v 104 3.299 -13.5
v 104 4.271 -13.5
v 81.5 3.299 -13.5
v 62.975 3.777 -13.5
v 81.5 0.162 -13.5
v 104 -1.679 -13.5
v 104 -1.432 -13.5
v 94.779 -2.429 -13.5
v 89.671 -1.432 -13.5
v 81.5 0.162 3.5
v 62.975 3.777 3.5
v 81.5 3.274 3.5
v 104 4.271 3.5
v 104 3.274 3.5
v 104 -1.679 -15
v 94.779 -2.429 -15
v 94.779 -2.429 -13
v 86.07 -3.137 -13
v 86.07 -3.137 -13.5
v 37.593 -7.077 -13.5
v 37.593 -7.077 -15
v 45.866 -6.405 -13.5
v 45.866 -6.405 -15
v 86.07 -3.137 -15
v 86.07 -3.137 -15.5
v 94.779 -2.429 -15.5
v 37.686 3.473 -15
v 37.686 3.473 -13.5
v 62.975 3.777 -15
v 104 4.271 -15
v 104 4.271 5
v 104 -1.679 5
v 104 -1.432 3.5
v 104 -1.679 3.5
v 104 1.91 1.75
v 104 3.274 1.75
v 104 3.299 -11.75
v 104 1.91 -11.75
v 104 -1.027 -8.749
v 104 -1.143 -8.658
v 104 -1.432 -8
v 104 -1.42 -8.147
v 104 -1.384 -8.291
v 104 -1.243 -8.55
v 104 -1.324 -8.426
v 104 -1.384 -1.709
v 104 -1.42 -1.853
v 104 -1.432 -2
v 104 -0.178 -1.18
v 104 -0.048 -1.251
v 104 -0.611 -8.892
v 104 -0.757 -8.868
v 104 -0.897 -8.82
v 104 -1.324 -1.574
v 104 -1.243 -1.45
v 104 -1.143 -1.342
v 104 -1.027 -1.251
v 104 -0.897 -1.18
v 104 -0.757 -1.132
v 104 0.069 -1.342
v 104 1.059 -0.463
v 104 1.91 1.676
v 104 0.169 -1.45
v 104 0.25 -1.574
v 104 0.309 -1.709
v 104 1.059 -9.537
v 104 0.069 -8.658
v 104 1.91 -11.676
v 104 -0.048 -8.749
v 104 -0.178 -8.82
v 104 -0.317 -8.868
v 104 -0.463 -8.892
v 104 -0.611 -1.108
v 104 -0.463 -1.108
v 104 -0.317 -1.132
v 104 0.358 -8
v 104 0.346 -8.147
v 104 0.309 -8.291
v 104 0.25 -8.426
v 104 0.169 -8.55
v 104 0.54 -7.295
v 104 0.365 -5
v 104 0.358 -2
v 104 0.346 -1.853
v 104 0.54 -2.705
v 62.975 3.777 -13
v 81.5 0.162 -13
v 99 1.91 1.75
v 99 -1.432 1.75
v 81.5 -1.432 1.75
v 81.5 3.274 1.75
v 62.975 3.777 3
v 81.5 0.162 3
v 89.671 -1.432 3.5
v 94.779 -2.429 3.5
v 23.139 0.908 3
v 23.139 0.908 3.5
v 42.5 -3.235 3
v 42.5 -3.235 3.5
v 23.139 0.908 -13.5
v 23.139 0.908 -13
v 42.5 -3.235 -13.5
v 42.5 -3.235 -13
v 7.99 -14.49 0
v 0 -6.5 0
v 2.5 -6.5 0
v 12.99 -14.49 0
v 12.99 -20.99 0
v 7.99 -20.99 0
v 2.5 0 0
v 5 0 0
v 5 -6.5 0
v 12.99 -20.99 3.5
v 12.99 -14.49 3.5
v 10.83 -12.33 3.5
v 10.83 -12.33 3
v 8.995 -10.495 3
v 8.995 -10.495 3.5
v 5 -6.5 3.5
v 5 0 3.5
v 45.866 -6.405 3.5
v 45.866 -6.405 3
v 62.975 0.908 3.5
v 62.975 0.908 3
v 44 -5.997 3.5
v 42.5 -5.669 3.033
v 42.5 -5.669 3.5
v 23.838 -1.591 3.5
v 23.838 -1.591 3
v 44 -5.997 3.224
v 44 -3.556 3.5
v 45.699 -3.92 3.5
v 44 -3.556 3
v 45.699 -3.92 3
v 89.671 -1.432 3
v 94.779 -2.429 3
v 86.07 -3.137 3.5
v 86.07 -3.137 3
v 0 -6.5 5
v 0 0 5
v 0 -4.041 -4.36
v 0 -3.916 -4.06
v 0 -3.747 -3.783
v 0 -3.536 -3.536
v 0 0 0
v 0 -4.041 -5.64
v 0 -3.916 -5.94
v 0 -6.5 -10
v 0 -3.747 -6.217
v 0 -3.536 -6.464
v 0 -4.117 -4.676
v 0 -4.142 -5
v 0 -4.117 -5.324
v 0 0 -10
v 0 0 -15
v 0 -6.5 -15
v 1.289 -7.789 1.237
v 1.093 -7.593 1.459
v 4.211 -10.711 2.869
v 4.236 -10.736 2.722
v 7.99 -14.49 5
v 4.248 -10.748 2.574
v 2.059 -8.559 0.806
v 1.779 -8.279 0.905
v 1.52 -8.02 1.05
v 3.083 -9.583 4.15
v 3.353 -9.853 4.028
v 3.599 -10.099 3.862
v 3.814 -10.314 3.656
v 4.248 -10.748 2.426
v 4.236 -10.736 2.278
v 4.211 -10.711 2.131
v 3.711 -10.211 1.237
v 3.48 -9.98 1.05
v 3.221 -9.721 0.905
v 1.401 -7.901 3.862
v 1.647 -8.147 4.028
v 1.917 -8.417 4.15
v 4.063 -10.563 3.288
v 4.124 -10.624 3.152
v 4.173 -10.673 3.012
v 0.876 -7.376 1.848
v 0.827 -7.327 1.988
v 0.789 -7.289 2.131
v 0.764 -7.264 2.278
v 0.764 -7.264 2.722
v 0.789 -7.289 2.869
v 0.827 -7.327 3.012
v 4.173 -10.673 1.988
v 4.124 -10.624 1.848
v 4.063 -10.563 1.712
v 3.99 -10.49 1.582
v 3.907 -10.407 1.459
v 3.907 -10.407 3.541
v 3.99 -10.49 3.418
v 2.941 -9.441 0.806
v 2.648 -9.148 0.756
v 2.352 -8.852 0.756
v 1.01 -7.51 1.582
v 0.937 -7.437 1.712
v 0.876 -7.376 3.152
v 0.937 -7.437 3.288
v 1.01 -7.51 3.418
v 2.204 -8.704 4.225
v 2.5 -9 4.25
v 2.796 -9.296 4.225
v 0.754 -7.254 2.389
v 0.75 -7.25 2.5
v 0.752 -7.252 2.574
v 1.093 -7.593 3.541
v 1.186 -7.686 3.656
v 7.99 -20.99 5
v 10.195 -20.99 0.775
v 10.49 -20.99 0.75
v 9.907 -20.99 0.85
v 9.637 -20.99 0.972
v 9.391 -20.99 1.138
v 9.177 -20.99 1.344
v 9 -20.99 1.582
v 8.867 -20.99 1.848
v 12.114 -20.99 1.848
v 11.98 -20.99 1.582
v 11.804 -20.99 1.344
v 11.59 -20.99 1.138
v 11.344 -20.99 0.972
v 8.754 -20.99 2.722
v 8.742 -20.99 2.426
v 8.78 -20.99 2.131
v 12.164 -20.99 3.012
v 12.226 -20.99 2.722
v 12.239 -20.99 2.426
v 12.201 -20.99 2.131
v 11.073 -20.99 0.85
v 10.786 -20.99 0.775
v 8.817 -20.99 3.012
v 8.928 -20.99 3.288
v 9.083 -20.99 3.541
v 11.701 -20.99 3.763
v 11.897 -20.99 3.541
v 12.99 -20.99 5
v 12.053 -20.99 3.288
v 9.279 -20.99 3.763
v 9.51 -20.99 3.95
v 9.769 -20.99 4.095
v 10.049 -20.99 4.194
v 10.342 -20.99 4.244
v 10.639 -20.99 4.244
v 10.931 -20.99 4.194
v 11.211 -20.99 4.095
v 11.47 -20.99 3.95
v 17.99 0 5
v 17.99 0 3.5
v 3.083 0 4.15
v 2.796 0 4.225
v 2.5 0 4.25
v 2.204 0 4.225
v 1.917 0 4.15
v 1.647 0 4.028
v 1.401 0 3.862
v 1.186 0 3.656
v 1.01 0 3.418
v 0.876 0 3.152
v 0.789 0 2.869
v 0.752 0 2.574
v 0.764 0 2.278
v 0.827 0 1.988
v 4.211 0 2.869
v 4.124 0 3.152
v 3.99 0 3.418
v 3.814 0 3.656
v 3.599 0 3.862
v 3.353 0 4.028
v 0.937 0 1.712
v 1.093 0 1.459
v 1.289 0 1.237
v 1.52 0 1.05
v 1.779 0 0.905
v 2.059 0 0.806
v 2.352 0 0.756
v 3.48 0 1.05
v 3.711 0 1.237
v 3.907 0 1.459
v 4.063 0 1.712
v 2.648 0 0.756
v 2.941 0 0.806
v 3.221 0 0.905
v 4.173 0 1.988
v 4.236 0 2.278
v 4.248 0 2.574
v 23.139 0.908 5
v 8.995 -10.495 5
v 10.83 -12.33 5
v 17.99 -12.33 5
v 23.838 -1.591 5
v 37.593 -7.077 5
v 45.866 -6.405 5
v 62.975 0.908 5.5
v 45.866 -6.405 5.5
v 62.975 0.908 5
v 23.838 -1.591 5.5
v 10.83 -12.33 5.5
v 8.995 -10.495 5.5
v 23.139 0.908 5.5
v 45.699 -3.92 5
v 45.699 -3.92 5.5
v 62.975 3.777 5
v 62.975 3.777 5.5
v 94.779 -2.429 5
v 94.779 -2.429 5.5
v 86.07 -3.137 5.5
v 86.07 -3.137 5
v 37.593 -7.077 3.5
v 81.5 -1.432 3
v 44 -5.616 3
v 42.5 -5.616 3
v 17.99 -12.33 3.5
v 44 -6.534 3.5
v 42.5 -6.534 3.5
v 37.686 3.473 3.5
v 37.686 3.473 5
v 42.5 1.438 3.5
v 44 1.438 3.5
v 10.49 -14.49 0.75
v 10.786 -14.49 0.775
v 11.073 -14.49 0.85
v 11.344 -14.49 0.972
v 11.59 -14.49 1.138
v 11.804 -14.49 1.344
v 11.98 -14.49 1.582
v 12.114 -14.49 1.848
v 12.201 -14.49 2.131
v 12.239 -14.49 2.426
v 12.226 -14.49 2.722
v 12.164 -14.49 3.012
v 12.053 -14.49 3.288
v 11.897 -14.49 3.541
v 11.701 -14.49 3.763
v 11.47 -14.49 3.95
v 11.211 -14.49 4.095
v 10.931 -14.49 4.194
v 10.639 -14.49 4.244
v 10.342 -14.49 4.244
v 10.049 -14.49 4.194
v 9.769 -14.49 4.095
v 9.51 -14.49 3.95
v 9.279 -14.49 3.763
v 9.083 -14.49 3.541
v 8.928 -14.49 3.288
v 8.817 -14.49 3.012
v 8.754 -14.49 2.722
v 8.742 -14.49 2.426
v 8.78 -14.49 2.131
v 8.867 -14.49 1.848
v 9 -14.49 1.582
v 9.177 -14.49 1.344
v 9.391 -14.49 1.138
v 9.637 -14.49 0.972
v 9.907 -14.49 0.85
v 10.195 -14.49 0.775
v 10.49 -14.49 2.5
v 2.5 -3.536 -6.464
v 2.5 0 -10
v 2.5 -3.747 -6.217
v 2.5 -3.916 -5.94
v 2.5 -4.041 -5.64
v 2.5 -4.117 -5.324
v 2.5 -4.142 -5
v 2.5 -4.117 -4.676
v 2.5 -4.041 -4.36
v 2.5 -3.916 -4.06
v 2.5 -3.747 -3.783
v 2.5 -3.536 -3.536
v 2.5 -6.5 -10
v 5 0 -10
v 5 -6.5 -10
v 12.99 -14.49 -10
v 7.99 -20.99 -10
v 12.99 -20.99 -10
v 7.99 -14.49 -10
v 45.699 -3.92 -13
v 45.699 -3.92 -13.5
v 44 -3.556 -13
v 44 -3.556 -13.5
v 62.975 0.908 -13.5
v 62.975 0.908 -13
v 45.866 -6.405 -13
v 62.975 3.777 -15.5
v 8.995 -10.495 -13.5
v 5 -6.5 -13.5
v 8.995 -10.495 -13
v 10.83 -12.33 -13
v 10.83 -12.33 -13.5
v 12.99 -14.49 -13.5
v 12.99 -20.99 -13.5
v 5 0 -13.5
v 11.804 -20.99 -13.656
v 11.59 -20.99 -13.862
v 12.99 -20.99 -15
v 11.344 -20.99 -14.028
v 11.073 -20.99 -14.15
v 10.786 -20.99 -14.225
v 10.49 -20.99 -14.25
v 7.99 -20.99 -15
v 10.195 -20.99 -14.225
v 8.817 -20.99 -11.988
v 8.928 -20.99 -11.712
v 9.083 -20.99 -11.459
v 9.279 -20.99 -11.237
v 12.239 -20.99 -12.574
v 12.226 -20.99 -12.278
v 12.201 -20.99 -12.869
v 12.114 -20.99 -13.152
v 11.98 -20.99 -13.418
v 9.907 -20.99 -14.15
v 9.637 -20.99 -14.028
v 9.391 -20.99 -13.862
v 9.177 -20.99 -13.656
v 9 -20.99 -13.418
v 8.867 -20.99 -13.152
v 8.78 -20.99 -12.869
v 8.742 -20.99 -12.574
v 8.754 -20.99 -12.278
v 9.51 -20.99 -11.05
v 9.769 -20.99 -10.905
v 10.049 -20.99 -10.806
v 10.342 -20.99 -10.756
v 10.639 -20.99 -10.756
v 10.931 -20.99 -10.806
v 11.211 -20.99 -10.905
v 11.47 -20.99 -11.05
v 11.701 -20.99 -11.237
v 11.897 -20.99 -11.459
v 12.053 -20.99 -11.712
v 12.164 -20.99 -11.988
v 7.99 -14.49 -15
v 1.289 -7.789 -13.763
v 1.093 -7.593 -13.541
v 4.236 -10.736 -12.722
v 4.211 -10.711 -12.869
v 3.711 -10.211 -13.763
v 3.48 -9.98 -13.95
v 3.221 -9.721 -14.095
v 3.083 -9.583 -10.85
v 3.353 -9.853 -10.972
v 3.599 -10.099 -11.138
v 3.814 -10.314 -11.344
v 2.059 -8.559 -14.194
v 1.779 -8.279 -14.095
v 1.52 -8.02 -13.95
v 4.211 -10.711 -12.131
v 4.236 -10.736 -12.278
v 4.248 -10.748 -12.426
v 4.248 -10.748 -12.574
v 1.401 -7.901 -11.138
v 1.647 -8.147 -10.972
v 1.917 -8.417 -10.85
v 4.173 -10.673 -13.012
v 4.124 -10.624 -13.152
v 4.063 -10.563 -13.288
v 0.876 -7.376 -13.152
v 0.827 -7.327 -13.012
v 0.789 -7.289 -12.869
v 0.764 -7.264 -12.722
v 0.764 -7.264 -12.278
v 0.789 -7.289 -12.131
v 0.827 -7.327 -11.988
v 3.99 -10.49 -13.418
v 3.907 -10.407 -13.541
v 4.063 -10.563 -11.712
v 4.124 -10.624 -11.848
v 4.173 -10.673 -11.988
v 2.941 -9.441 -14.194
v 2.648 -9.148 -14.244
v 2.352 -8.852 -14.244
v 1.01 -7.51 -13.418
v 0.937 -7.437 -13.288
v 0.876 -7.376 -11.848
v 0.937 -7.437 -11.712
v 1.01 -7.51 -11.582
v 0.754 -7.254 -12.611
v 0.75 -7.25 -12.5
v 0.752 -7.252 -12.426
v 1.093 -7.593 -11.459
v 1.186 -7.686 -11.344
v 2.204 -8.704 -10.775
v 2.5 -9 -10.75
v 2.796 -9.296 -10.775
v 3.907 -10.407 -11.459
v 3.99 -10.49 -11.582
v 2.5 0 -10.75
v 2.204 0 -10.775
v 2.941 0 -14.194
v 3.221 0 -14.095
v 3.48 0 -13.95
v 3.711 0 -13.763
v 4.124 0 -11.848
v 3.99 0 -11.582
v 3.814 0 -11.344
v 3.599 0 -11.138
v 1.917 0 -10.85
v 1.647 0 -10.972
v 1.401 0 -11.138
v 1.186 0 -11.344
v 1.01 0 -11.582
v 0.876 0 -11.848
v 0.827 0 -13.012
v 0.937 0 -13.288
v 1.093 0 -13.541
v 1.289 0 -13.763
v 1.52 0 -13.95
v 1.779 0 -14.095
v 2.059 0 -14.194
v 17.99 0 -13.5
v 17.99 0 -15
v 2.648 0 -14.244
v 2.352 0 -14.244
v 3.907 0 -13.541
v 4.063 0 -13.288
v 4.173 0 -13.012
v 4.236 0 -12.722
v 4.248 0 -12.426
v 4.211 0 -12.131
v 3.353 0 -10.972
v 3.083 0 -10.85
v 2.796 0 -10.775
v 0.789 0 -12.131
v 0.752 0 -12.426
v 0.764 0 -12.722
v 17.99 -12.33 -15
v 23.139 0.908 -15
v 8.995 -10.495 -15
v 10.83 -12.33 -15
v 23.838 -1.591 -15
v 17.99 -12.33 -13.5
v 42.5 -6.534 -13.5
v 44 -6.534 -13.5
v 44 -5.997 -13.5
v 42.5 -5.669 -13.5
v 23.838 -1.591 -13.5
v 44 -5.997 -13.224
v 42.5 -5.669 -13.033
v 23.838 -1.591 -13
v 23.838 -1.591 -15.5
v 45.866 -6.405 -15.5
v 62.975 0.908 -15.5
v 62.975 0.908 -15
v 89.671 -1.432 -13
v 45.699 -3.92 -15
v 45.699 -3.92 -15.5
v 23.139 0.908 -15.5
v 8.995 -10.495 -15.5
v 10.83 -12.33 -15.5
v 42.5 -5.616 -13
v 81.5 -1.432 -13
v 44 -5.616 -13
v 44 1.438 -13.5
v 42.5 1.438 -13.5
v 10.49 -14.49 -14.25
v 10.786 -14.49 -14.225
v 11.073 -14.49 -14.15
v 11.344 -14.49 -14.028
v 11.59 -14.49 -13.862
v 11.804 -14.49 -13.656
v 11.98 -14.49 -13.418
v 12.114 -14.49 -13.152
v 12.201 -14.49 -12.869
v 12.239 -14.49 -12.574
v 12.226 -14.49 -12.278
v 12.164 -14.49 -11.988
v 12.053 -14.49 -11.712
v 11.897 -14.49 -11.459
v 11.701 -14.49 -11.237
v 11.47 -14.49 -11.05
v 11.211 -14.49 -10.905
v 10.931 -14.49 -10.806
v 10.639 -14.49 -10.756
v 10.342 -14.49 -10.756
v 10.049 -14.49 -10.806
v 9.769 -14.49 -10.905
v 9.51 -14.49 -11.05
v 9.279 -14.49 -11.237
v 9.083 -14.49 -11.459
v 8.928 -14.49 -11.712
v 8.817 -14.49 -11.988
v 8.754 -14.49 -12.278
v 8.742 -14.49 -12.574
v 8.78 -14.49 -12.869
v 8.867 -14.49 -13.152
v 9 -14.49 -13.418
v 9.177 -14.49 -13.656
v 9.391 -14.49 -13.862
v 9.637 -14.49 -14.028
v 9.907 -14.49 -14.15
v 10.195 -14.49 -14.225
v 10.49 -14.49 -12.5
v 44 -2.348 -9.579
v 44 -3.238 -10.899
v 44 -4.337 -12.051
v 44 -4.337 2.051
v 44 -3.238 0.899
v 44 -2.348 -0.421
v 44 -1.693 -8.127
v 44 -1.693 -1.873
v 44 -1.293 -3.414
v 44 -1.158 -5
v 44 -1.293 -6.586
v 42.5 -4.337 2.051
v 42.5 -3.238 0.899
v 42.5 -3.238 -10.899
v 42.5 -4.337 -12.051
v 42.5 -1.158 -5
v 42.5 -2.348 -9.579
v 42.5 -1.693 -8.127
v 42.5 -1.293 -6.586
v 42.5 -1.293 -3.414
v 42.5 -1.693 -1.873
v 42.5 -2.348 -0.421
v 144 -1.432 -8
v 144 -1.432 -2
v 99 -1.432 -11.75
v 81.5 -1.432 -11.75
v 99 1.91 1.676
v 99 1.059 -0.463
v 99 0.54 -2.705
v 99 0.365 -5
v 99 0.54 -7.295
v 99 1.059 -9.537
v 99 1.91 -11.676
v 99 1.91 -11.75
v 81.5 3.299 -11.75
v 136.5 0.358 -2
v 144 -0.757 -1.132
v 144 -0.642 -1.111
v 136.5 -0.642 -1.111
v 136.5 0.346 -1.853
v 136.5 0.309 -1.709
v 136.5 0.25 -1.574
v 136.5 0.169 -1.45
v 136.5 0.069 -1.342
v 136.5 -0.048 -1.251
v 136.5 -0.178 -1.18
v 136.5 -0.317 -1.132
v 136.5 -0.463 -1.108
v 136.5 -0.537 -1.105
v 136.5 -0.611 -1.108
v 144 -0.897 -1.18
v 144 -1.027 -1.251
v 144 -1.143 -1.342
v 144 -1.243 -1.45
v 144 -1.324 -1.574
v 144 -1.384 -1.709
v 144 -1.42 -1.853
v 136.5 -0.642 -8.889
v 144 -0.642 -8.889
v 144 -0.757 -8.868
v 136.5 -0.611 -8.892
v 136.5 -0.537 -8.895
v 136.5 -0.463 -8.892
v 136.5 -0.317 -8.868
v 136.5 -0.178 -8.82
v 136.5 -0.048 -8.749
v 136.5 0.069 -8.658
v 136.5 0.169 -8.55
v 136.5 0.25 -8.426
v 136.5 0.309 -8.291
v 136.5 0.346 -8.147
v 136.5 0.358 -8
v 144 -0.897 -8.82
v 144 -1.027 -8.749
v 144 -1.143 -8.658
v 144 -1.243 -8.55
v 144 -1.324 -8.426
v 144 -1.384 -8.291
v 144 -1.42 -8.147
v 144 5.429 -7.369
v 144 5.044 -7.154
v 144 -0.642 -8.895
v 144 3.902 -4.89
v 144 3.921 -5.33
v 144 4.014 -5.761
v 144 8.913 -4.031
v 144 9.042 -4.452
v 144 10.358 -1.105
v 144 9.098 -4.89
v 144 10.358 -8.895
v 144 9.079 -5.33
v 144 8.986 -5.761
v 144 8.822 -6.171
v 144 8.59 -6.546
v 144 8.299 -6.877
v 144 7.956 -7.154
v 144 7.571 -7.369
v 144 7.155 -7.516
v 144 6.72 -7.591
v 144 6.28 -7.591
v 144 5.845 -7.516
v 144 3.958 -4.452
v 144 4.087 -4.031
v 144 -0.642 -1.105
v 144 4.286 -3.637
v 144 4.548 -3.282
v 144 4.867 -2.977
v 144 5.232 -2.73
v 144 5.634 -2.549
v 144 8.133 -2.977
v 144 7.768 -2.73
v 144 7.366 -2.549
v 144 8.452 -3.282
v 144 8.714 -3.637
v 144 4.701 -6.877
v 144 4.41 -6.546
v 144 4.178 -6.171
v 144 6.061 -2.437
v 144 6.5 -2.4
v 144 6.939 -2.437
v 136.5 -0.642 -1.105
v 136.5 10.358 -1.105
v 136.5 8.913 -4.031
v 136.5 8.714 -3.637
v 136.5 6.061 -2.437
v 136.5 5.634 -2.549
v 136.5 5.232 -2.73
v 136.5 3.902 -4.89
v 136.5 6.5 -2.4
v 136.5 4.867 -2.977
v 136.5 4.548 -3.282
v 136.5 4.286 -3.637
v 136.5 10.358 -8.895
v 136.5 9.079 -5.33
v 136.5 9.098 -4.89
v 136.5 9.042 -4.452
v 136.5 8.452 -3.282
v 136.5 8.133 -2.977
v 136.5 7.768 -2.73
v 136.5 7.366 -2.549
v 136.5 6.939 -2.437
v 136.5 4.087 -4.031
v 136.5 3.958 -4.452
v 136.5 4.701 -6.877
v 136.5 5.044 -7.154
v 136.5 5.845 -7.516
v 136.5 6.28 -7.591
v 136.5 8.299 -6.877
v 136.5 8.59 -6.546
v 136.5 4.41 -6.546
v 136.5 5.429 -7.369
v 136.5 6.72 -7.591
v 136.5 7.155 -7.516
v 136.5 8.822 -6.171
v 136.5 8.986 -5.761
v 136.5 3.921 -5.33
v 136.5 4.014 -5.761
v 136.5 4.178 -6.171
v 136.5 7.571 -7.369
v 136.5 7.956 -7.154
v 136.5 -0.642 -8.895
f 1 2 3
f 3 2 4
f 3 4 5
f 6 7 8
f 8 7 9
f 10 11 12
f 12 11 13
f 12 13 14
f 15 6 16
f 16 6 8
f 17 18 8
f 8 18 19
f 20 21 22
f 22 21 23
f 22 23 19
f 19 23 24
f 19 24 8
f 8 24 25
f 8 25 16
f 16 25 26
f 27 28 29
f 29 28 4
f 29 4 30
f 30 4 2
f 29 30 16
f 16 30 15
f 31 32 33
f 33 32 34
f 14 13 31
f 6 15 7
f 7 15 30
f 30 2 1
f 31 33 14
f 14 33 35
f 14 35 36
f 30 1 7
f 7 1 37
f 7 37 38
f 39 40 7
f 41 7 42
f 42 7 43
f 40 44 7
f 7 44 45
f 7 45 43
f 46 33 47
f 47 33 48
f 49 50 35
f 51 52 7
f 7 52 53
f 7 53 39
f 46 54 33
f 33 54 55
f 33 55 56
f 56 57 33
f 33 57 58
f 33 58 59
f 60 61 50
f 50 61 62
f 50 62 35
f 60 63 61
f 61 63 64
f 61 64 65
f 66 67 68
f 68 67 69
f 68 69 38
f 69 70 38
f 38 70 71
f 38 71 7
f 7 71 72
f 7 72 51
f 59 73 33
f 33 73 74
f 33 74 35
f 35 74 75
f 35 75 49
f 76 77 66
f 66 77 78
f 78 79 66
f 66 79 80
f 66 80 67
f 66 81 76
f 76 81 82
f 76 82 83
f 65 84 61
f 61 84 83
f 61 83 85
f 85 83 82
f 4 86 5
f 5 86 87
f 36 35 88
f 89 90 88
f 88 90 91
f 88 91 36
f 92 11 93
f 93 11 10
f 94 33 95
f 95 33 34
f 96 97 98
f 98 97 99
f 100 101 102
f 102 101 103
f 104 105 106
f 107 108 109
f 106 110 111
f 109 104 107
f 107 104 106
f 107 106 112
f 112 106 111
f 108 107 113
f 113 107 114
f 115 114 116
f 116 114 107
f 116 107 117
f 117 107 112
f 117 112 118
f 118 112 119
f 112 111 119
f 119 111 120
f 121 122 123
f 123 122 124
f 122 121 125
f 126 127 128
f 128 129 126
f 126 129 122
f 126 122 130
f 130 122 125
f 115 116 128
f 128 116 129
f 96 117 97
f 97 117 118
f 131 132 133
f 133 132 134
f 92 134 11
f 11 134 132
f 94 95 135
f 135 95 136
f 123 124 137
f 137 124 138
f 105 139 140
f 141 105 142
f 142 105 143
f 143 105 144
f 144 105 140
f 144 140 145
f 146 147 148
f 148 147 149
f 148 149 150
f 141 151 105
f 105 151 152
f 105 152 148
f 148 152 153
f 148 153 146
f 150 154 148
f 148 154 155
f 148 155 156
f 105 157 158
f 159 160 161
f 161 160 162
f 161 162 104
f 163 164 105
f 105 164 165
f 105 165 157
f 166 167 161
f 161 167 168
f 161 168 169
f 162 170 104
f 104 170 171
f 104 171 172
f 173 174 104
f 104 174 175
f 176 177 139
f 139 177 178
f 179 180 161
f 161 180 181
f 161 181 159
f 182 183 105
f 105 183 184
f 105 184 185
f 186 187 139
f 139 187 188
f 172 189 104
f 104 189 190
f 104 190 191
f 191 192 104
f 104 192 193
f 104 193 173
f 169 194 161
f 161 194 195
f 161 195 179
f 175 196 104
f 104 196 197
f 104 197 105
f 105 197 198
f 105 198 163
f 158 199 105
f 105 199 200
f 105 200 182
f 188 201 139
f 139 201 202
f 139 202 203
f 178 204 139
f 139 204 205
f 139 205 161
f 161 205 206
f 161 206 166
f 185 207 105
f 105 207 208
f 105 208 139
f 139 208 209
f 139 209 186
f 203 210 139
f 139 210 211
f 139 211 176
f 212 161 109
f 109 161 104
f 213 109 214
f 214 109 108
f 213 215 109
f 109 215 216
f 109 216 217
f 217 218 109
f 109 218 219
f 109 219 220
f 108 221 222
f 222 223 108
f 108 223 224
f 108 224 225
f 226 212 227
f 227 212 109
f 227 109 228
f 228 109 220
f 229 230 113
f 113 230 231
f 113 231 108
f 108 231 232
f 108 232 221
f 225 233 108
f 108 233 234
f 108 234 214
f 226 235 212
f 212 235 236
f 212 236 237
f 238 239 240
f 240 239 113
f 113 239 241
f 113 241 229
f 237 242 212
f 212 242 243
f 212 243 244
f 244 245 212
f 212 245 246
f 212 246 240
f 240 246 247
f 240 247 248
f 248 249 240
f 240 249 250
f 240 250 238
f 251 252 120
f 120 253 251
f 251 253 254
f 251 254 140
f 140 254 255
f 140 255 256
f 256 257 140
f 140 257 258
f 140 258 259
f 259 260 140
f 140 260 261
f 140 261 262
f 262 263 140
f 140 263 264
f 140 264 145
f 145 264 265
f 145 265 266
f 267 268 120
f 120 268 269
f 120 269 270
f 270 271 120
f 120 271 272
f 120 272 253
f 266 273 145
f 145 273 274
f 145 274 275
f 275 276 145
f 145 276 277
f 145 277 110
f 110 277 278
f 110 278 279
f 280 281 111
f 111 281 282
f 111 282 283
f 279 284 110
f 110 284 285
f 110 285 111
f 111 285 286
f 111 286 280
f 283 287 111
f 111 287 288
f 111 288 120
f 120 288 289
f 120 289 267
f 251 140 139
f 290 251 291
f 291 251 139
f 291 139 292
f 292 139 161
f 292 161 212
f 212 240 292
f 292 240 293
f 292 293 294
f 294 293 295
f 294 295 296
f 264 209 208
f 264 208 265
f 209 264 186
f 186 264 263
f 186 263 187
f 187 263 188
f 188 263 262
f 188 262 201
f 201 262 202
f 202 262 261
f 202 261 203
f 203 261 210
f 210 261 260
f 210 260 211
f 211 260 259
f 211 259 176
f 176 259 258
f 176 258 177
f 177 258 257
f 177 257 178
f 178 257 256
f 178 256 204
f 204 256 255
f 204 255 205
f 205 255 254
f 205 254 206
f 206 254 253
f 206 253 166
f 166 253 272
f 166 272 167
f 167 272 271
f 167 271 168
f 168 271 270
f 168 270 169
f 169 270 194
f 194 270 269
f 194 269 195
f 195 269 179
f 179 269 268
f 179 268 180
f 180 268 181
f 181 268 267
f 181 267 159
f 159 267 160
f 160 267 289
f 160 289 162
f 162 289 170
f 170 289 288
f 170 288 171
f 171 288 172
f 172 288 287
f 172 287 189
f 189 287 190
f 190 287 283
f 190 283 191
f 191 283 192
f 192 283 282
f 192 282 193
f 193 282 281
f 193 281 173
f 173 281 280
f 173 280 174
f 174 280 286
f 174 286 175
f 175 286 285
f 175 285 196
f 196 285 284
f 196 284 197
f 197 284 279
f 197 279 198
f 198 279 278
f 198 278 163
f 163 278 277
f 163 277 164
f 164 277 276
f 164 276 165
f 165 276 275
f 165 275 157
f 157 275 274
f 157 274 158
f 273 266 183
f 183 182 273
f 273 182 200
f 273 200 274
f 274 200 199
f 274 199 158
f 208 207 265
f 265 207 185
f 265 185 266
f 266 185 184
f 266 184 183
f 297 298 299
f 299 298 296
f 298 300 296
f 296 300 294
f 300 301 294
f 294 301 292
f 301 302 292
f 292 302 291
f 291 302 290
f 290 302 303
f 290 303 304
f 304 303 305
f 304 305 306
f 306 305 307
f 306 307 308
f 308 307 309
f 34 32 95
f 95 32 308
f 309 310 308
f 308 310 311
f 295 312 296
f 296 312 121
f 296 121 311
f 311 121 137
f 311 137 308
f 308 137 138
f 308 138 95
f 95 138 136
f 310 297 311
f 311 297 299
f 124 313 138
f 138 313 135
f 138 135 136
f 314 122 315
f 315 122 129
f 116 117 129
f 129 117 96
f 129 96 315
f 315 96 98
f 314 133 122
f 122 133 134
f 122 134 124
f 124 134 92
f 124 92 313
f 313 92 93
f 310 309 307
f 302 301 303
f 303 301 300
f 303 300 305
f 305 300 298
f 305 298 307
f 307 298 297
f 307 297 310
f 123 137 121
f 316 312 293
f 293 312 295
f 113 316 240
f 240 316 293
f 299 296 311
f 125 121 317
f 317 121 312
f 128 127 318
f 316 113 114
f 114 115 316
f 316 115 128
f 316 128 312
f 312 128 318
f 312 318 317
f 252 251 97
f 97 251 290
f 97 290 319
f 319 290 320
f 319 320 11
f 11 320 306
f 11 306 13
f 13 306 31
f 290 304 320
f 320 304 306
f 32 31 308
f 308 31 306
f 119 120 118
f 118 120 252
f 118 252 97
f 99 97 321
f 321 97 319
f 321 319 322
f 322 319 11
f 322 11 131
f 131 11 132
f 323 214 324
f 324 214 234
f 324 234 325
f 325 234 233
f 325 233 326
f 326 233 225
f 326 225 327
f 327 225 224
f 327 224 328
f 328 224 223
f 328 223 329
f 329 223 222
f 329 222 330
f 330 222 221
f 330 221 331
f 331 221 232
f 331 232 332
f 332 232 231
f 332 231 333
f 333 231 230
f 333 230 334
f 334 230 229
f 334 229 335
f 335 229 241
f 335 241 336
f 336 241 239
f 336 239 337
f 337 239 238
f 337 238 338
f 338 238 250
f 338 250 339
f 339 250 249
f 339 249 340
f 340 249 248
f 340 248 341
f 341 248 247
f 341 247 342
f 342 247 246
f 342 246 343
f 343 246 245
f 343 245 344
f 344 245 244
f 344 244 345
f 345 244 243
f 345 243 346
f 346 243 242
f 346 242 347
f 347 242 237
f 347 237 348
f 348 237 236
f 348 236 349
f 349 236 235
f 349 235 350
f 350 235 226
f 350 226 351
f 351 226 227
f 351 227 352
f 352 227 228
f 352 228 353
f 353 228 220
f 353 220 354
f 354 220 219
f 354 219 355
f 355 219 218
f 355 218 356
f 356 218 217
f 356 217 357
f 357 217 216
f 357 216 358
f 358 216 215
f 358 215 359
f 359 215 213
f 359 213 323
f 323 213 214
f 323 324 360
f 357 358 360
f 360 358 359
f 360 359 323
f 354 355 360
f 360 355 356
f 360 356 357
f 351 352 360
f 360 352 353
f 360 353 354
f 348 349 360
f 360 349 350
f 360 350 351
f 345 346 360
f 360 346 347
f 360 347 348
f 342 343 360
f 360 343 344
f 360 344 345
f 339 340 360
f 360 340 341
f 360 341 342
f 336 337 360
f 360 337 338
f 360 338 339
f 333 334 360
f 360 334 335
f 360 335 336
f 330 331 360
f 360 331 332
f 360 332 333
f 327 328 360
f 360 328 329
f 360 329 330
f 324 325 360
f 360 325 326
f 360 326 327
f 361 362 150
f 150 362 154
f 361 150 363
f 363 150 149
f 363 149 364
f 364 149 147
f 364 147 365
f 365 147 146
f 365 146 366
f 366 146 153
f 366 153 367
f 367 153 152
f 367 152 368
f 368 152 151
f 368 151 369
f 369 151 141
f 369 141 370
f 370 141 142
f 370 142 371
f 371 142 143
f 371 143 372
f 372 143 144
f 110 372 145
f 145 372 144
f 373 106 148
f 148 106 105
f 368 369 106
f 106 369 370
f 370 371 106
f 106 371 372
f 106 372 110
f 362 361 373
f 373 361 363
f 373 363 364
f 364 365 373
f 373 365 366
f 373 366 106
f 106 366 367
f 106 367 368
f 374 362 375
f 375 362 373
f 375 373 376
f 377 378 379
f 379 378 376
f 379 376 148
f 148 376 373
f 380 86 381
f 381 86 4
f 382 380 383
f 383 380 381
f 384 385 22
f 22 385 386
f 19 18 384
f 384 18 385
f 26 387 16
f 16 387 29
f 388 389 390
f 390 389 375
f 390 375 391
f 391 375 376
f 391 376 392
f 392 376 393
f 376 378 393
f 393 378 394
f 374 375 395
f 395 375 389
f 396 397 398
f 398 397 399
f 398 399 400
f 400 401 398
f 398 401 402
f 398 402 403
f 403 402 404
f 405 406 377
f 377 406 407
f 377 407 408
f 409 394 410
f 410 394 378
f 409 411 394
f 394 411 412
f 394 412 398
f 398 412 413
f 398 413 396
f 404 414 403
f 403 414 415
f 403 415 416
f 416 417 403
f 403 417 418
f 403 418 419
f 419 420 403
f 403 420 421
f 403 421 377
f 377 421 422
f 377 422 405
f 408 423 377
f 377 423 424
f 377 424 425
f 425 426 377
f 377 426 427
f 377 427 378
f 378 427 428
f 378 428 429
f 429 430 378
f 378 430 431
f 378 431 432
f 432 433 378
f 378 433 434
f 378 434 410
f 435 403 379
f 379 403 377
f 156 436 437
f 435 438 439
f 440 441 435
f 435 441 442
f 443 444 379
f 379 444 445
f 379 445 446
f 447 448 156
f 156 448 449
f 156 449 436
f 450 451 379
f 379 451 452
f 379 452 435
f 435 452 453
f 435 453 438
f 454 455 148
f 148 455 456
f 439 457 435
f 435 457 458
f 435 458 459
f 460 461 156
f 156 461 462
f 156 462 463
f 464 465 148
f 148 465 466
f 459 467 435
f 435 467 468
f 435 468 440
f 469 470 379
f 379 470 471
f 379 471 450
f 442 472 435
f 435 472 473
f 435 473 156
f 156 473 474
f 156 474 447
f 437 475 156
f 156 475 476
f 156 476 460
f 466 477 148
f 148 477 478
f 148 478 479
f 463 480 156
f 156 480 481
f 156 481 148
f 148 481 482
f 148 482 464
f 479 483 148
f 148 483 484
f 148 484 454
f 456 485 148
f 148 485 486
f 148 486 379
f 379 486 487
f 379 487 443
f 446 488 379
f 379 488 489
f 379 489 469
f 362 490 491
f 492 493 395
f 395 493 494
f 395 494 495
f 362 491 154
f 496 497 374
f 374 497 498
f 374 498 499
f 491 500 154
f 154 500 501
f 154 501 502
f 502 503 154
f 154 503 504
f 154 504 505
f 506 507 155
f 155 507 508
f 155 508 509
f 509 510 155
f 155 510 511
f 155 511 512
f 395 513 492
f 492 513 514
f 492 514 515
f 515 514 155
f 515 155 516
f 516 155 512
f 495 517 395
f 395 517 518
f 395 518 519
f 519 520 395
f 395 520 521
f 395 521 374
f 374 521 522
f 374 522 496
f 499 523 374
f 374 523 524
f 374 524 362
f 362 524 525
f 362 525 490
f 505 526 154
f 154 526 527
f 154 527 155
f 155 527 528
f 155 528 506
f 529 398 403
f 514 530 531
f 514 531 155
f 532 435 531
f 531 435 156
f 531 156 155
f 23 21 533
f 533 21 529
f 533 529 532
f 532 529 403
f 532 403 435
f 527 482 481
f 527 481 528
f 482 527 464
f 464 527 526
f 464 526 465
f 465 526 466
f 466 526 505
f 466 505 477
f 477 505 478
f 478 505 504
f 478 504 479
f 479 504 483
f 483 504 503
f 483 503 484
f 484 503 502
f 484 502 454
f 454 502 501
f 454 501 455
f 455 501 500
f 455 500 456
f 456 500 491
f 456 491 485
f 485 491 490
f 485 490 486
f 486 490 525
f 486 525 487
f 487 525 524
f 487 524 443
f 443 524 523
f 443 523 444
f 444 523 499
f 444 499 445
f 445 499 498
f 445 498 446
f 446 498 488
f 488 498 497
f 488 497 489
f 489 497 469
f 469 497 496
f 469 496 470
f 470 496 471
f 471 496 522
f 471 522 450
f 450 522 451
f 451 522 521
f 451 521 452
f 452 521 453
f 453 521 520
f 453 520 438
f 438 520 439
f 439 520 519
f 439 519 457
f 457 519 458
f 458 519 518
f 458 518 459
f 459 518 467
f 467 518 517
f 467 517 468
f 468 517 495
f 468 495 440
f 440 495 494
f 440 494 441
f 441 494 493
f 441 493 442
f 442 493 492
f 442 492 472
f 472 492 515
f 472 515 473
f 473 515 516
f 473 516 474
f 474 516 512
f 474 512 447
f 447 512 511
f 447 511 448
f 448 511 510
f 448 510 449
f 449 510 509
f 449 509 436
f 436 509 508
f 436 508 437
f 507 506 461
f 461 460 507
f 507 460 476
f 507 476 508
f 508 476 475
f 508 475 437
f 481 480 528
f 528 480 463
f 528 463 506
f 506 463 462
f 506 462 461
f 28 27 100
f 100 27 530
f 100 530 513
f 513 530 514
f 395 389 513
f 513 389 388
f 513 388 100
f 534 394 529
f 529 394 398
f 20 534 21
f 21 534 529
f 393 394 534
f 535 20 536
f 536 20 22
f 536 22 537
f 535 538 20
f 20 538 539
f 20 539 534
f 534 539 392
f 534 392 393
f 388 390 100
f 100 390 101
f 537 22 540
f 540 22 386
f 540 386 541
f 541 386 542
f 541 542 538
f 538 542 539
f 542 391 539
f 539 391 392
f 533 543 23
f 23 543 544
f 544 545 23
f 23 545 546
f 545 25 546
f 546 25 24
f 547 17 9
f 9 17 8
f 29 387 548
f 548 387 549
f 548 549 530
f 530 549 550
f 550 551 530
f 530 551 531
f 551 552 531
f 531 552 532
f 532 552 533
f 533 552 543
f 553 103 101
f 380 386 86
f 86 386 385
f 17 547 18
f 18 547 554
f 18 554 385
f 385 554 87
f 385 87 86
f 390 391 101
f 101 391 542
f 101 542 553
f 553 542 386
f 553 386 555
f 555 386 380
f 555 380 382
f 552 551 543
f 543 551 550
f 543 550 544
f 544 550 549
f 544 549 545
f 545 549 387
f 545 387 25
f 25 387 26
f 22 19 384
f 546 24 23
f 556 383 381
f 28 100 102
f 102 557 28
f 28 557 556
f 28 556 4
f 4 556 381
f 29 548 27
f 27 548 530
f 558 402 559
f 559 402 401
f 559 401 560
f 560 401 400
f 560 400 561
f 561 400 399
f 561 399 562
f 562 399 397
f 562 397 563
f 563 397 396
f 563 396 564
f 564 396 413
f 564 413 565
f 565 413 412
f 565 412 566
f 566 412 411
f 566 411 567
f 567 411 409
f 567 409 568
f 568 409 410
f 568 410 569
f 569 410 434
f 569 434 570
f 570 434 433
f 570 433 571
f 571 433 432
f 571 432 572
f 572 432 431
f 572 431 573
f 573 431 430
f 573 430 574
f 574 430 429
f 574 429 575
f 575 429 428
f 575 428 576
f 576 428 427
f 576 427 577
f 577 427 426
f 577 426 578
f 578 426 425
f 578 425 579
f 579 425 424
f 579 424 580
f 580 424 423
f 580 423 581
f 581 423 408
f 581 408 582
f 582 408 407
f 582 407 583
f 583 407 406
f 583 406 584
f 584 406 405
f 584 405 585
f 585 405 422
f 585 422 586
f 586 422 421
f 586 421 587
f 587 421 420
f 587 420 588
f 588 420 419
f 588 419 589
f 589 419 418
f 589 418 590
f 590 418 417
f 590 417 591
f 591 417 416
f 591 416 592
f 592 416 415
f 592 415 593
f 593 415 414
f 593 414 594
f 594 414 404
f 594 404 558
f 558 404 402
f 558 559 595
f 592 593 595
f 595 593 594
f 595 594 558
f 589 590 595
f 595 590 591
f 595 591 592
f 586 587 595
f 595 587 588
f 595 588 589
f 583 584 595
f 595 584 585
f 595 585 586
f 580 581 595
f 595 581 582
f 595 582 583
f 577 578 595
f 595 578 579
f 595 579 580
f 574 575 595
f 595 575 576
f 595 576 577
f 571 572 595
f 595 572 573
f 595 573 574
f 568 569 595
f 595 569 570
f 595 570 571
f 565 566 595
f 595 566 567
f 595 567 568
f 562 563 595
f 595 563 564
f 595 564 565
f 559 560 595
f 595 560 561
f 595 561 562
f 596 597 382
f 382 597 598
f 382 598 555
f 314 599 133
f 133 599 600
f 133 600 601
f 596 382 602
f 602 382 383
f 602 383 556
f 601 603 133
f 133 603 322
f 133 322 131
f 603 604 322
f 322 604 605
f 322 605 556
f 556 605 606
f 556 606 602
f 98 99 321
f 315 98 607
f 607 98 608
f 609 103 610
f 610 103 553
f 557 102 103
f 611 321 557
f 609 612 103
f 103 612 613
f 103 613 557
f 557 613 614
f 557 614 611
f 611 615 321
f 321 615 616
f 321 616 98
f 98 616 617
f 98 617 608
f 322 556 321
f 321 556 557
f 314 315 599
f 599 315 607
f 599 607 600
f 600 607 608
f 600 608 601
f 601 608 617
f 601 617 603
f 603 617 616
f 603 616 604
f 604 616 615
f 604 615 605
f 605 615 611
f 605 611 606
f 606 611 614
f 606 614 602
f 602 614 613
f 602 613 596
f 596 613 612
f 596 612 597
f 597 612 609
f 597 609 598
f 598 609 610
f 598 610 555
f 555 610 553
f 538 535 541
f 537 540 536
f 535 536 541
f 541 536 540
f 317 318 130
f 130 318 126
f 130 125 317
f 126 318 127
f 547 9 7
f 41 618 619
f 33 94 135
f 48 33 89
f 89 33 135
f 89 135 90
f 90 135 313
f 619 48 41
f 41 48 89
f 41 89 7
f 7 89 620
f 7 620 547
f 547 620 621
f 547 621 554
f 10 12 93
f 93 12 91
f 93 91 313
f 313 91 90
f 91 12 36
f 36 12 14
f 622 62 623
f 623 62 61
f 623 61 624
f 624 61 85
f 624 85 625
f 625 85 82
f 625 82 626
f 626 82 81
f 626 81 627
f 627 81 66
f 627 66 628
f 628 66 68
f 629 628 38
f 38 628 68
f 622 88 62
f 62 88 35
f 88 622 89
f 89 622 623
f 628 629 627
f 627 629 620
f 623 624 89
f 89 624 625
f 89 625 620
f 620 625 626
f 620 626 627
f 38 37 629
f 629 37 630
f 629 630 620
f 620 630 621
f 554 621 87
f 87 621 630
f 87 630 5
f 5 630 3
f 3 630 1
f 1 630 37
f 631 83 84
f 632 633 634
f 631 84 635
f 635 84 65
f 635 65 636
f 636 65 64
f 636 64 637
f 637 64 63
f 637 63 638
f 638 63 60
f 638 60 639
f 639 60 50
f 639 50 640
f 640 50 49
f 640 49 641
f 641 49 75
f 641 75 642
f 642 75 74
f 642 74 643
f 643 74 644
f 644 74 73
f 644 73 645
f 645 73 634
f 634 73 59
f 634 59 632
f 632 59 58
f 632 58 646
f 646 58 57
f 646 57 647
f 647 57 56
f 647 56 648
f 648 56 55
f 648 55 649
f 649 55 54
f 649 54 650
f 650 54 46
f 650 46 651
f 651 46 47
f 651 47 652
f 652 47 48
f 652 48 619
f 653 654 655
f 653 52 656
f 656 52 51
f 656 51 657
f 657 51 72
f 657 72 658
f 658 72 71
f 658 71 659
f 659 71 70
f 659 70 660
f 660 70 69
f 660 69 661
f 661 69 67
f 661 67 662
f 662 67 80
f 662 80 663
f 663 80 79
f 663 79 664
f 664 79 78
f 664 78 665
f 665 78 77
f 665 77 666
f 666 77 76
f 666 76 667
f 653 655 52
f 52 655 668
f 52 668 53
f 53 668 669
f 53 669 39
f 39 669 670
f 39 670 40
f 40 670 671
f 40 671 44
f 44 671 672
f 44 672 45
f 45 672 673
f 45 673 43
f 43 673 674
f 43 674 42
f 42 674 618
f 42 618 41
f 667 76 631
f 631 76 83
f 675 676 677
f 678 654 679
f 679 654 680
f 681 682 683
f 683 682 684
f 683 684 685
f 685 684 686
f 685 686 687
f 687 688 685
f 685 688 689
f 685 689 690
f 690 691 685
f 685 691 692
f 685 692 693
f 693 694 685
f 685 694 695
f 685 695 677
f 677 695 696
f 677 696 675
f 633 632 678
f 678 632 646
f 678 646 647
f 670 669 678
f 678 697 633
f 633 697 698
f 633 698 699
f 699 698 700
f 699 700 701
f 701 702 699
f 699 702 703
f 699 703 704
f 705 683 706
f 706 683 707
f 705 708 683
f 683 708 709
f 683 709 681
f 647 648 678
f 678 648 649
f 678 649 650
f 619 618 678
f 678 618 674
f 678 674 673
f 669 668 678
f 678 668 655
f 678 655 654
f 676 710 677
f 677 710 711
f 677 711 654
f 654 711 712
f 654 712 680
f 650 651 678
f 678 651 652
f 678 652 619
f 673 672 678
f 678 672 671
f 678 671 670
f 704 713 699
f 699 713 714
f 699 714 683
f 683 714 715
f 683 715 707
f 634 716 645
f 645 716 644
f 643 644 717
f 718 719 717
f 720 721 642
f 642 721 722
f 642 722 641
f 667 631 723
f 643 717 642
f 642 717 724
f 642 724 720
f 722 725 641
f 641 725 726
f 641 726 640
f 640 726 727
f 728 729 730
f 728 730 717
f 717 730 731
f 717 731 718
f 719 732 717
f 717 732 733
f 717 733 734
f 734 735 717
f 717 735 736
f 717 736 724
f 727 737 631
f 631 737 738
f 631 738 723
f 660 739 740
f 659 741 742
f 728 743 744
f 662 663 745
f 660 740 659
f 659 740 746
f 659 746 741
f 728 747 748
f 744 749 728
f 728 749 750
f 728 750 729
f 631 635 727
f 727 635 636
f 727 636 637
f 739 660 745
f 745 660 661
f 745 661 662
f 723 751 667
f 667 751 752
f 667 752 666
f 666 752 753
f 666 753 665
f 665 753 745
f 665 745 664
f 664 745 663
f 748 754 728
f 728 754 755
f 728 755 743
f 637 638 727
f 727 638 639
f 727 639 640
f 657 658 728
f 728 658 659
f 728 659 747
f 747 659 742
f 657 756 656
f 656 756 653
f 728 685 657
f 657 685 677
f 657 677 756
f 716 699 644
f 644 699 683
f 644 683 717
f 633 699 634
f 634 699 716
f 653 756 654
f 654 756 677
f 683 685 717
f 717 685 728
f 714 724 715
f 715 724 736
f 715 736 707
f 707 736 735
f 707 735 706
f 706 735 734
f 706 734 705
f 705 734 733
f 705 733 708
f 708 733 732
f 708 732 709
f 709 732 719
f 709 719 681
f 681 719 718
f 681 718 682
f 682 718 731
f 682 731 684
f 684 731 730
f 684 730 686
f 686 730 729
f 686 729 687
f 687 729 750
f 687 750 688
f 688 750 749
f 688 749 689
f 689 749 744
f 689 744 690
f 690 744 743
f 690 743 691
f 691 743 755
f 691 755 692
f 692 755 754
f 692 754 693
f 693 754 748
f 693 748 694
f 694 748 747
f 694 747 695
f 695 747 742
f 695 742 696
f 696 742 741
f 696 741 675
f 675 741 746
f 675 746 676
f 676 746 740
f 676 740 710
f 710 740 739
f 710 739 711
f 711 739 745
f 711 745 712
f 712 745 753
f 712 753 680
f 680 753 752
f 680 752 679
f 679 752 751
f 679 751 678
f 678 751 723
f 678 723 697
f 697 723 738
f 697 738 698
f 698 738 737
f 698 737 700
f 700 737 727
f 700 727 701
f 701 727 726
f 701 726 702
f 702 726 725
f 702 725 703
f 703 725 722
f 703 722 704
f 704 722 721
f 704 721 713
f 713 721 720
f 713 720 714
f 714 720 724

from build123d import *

# Parameters (mm, degrees)
EXTRUDE_1_DEPTH       = 5
SKETCH_2_R            = 1.75
CUT_EXTRUDE_1_DEPTH   = 15
EXTRUDE_2_DEPTH       = 1.5
EXTRUDE_9_DEPTH       = 0.5
EXTRUDE_9_DEPTH_BACK  = 2
SKETCH_3_R            = 1.75
CUT_EXTRUDE_6_DEPTH   = 6.5
EXTRUDE_10_DEPTH      = 5
CUT_EXTRUDE_7_DEPTH   = 15
EXTRUDE_11_DEPTH      = 1.5
EXTRUDE_12_DEPTH      = 0.5
EXTRUDE_12_DEPTH_BACK = 2
SKETCH_17_R           = 1.75
CUT_EXTRUDE_8_DEPTH   = 6.5
EXTRUDE_13_DEPTH      = 2.5
EXTRUDE_14_DEPTH      = 1.5
EXTRUDE_15_DEPTH      = 5
SKETCH_24_4_W         = 1.75
SKETCH_24_4_H         = 3.342366724
EXTRUDE_16_DEPTH      = 22.5
EXTRUDE_17_DEPTH      = 40
SKETCH_28_W           = 3.461866643
SKETCH_28_H           = 8.544861576
SKETCH_28_W_2         = 3.380090265
SKETCH_28_H_2         = 8.552455592
CUT_EXTRUDE_9_DEPTH   = 35
EXTRUDE_18_DEPTH      = 10
EXTRUDE_18_DEPTH_BACK = 1
SKETCH_30_W           = 7.5
SKETCH_30_H           = 7.790021452
SKETCH_31_R           = 2.6
CUT_EXTRUDE_10_DEPTH  = 7.5


with BuildPart() as part:
    # 草图1 → 凸台-拉伸1 (new body)
    with BuildSketch(Plane.XY):
        Polygon((0, 0), (0, -6.5), (7.990306627, -14.490306627), (7.990306627, -20.990306627), (12.990306627, -20.990306627), (12.990306627, -14.490306627), (5, -6.5), (5, 0), align=None)
    extrude(amount=EXTRUDE_1_DEPTH)

    # 草图2 → 切除-拉伸1 (cut)
    with BuildSketch(Plane(origin=(0, 0, 0), x_dir=(1, 0, 0), z_dir=(0, 1, 0))):
        with Locations(Location((2.5, -2.5, 0), (0, 0, 270))):
            Circle(SKETCH_2_R)
    extrude(amount=-CUT_EXTRUDE_1_DEPTH, mode=Mode.SUBTRACT)



with BuildPart() as body_2:
    # 草图5 → 凸台-拉伸2 (new body)
    with BuildSketch(Plane.XY.offset(5)):
        Polygon((12.990306627, -14.490306627), (12.990306627, -20.990306627), (17.990306627, -12.33005259), (37.59310092, -7.077499689), (107.04245202, -1.432133489), (107.04245202, 4.307731787), (37.686461688, 3.472963553), (17.990306627, 0), (5, 0), (5, -6.5), align=None)
    extrude(amount=-EXTRUDE_2_DEPTH)


with BuildPart() as part_1:
    add(part.part)

    add(body_2.part)  # 凸台-拉伸9 merges body 2
    # 草图5<8> → 凸台-拉伸9 (add, two sides: drawn at the far end of the back side and taken through both)
    with BuildSketch(Plane.XY.offset(5).offset(-EXTRUDE_9_DEPTH_BACK)):
        Polygon((8.995153314, -10.495153314), (10.83005259, -12.33005259), (23.838077825, -1.590678088), (45.865929556, -6.405021885), (62.974730369, 0.907823357), (86.070137471, -3.136921133), (87.899311972, -2.988232057), (94.779335732, -2.42897192), (62.974730369, 3.777332985), (45.698525456, -3.919808084), (23.138828729, 0.907823357), align=None)
    extrude(amount=EXTRUDE_9_DEPTH + EXTRUDE_9_DEPTH_BACK)

    # 草图3 → 切除-拉伸6 (cut)
    with BuildSketch(Plane.XZ.offset(20.990306627)):
        with Locations(Location((10.490306627, 2.5, 0), (0, 0, 270))):
            Circle(SKETCH_3_R)
    extrude(amount=-CUT_EXTRUDE_6_DEPTH, mode=Mode.SUBTRACT)



with BuildPart() as body_2_2:
    # 草图15 → 凸台-拉伸10 (new body)
    with BuildSketch(Plane(origin=(0, 0, -10), x_dir=(-1, 0, 0), z_dir=(0, 0, -1))):
        Polygon((-12.990306627, -20.990306627), (-7.990306627, -20.990306627), (-7.990306627, -14.490306627), (0, -6.5), (0, 0), (-5, 0), (-5, -6.5), (-12.990306627, -14.490306627), align=None)
    extrude(amount=EXTRUDE_10_DEPTH)

    # 草图16 → 切除-拉伸7 (cut)
    with BuildSketch(Plane(origin=(0, 0, 0), x_dir=(1, 0, 0), z_dir=(0, 1, 0))):
        with BuildLine():
            ThreePointArc((3.737436867, 13.737436867), (2.5, 14.25), (1.262563133, 13.737436867))
            Line((1.262563133, 13.737436867), (2.5, 12.5))
            Line((2.5, 12.5), (3.737436867, 13.737436867))
        make_face()
        with BuildLine():
            Line((2.5, 12.5), (1.262563133, 13.737436867))
            ThreePointArc((1.262563133, 13.737436867), (0.75, 12.5), (1.262563133, 11.262563133))
            Line((1.262563133, 11.262563133), (2.5, 12.5))
        make_face()
        with BuildLine():
            Line((3.737436867, 13.737436867), (2.5, 12.5))
            Line((2.5, 12.5), (3.737436867, 11.262563133))
            ThreePointArc((3.737436867, 11.262563133), (4.116789182, 11.830303993), (4.25, 12.5))
            ThreePointArc((4.25, 12.5), (4.116789182, 13.169696007), (3.737436867, 13.737436867))
        make_face()
        with BuildLine():
            Line((3.737436867, 11.262563133), (2.5, 12.5))
            Line((2.5, 12.5), (1.262563133, 11.262563133))
            ThreePointArc((1.262563133, 11.262563133), (2.5, 10.75), (3.737436867, 11.262563133))
        make_face()
    extrude(amount=-CUT_EXTRUDE_7_DEPTH, mode=Mode.SUBTRACT)

    # 草图18 → 凸台-拉伸11 (add)
    with BuildSketch(Plane(origin=(0, 0, -15), x_dir=(-1, 0, 0), z_dir=(0, 0, -1))):
        Polygon((-107.04245202, -1.432133489), (-94.779335732, -2.42897192), (-62.974730369, 3.777332985), (-107.04245202, 4.307731787), align=None)
        Polygon((-86.070137471, -3.136921133), (-45.865929556, -6.405021885), (-62.974730369, 0.907823357), align=None)
        Polygon((-45.698525456, -3.919808084), (-23.138828729, 0.907823357), (-37.686461688, 3.472963553), (-62.974730369, 3.777332985), align=None)
        Polygon((-23.138828729, 0.907823357), (-8.995153314, -10.495153314), (-5, -6.5), (-5, 0), (-17.990306627, 0), align=None)
        Polygon((-17.990306627, -12.33005259), (-12.990306627, -20.990306627), (-12.990306627, -14.490306627), (-10.83005259, -12.33005259), (-23.838077825, -1.590678088), (-45.865929556, -6.405021885), (-37.59310092, -7.077499689), align=None)
    extrude(amount=-EXTRUDE_11_DEPTH)


with BuildPart() as extrude_11_piece_1:
    # of the separate pieces the step leaves, piece 1, a body of its own (extrude_11_pieces)
    add(body_2_2.part.solids().sort_by_distance((12.990306627, -20.990306627, -10))[0])



with BuildPart() as extrude_11_piece_2:
    # of the separate pieces the step leaves, piece 2, a body of its own (extrude_11_pieces)
    add(body_2_2.part.solids().sort_by_distance((94.779335732, -2.42897192, -15))[0])


with BuildPart() as extrude_11_piece_3:
    # of the separate pieces the step leaves, piece 3, a body of its own (extrude_11_pieces)
    add(body_2_2.part.solids().sort_by_distance((37.686461688, 3.472963553, -15))[0])


with BuildPart() as extrude_11_piece_4:
    # of the separate pieces the step leaves, piece 4, a body of its own (extrude_11_pieces)
    add(body_2_2.part.solids().sort_by_distance((86.070137471, -3.136921133, -15))[0])


with BuildPart() as extrude_11_piece_1_1:
    add(extrude_11_piece_1.part)

    add(extrude_11_piece_2.part)  # 凸台-拉伸12 merges 凸台-拉伸11 piece 2

    add(extrude_11_piece_3.part)  # 凸台-拉伸12 merges 凸台-拉伸11 piece 3

    add(extrude_11_piece_4.part)  # 凸台-拉伸12 merges 凸台-拉伸11 piece 4
    # 草图18<3> → 凸台-拉伸12 (add, two sides: drawn at the far end of the back side and taken through both)
    with BuildSketch(Plane(origin=(0, 0, -15), x_dir=(-1, 0, 0), z_dir=(0, 0, -1)).offset(-EXTRUDE_12_DEPTH_BACK)):
        Polygon((-23.838077825, -1.590678088), (-10.83005259, -12.33005259), (-8.995153314, -10.495153314), (-23.138828729, 0.907823357), (-45.698525456, -3.919808084), (-62.974730369, 3.777332985), (-94.779335732, -2.42897192), (-86.070137471, -3.136921133), (-62.974730369, 0.907823357), (-45.865929556, -6.405021885), align=None)
    extrude(amount=EXTRUDE_12_DEPTH + EXTRUDE_12_DEPTH_BACK)

    # 草图17 → 切除-拉伸8 (cut)
    with BuildSketch(Plane.XZ.offset(20.990306627)):
        with Locations(Location((10.490306627, -12.5, 0), (0, 0, 270))):
            Circle(SKETCH_17_R)
    extrude(amount=-CUT_EXTRUDE_8_DEPTH, mode=Mode.SUBTRACT)


with BuildPart() as part_2:
    add(part_1.part)

    add(extrude_11_piece_1_1.part)  # 凸台-拉伸13 merges 凸台-拉伸11 piece 1
    # 草图19 → 凸台-拉伸13 (add)
    with BuildSketch(Plane.ZY):
        with BuildLine():
            Line((-10, 0), (-6.464466094, -3.535533906))
            ThreePointArc((-6.464466094, -3.535533906), (-5, -4.142135624), (-3.535533906, -3.535533906))
            Line((-3.535533906, -3.535533906), (0, 0))
            Line((0, 0), (0, -6.5))
            Line((0, -6.5), (-10, -6.5))
            Line((-10, -6.5), (-10, 0))
        make_face()
    extrude(amount=-EXTRUDE_13_DEPTH)

    # 草图21 → 凸台-拉伸14 (add)
    with BuildSketch(Plane(origin=(42.5, 0, 0), x_dir=(0, 0, -1), z_dir=(1, 0, 0))):
        with BuildLine():
            Line((13.5, 1.437799149), (-3.5, 1.437799149))
            Line((-3.5, 1.437799149), (-3.5, -6.533909198))
            ThreePointArc((-3.5, -6.533909198), (5, -1.158347274), (13.5, -6.533909198))
            Line((13.5, -6.533909198), (13.5, 1.437799149))
        make_face()
    extrude(amount=EXTRUDE_14_DEPTH)



with BuildPart() as body_2_3:
    # 草图24 → 凸台-拉伸15 (new body)
    with BuildSketch(Plane(origin=(104, 0, 0), x_dir=(0, 0, -1), z_dir=(1, 0, 0))):
        with BuildLine():
            Line((-1.675753423, 1.910233235), (-1.75, 1.910233235))
            Line((-1.75, 1.910233235), (-1.75, -1.432133489))
            Line((-1.75, -1.432133489), (11.75, -1.432133489))
            Line((11.75, -1.432133489), (11.75, 1.910233235))
            Line((11.75, 1.910233235), (11.675753423, 1.910233235))
            ThreePointArc((11.675753423, 1.910233235), (5, 0.365220302), (-1.675753423, 1.910233235))
        make_face()
    extrude(amount=-EXTRUDE_15_DEPTH)


with BuildPart() as part_3:
    add(part_2.part)

    add(body_2_3.part)  # 凸台-拉伸16 merges body 2 3
    # 草图24<4> → 凸台-拉伸16 (add)
    with BuildSketch(Plane(origin=(104, 0, 0), x_dir=(0, 0, -1), z_dir=(1, 0, 0))):
        with BuildLine():
            Line((-3.5, 3.274439584), (-3.5, 2.96507449))
            ThreePointArc((-3.5, 2.96507449), (-2.641979316, 2.426754732), (-1.75, 1.946795821))
            Line((-1.75, 1.946795821), (-1.75, 3.274439584))
            Line((-1.75, 3.274439584), (-3.5, 3.274439584))
        make_face()
        with BuildLine():
            Line((-3.5, 2.96507449), (-3.5, 1.910233235))
            Line((-3.5, 1.910233235), (-1.75, 1.910233235))
            Line((-1.75, 1.910233235), (-1.75, 1.946795821))
            ThreePointArc((-1.75, 1.946795821), (-2.641979316, 2.426754732), (-3.5, 2.96507449))
        make_face()
        with Locations((-2.625, 0.239049873)):
            Rectangle(SKETCH_24_4_W, SKETCH_24_4_H)
        with Locations((12.625, 0.239049873)):
            Rectangle(SKETCH_24_4_W, SKETCH_24_4_H)
        with BuildLine():
            Line((13.5, 1.910233235), (13.5, 2.96507449))
            ThreePointArc((13.5, 2.96507449), (12.641979316, 2.426754732), (11.75, 1.946795821))
            Line((11.75, 1.946795821), (11.75, 1.910233235))
            Line((11.75, 1.910233235), (13.5, 1.910233235))
        make_face()
        with BuildLine():
            ThreePointArc((11.75, 1.946795821), (12.641979316, 2.426754732), (13.5, 2.96507449))
            Line((13.5, 2.96507449), (13.5, 3.299190827))
            Line((13.5, 3.299190827), (11.75, 3.299190827))
            Line((11.75, 3.299190827), (11.75, 1.946795821))
        make_face()
    extrude(amount=-EXTRUDE_16_DEPTH)

    # 草图26 → 凸台-拉伸17 (add)
    with BuildSketch(Plane(origin=(104, 0, 0), x_dir=(0, 0, -1), z_dir=(1, 0, 0))):
        with BuildLine():
            Line((2, 0.357887963), (8, 0.357887963))
            ThreePointArc((8, 0.357887963), (8.895010726, -0.537122763), (8, -1.432133489))
            Line((8, -1.432133489), (2, -1.432133489))
            ThreePointArc((2, -1.432133489), (1.104989274, -0.537122763), (2, 0.357887963))
        make_face()
    extrude(amount=EXTRUDE_17_DEPTH)

    # 草图28 → 切除-拉伸9 (cut)
    with BuildSketch(Plane(origin=(104, 0, 0), x_dir=(0, 0, -1), z_dir=(1, 0, 0))):
        with Locations((-4.57289023, 0.313738206)):
            Rectangle(SKETCH_28_W, SKETCH_28_H)
        with Locations((14.303823551, 0.282682405)):
            Rectangle(SKETCH_28_W_2, SKETCH_28_H_2)
    extrude(amount=CUT_EXTRUDE_9_DEPTH, mode=Mode.SUBTRACT)

    # 草图30 → 凸台-拉伸18 (add, two sides: drawn at the far end of the back side and taken through both)
    with BuildSketch(Plane(origin=(0, 0.357887963, 0), x_dir=(1, 0, 0), z_dir=(0, 1, 0)).offset(-EXTRUDE_18_DEPTH_BACK)):
        with Locations((140.25, 5)):
            Rectangle(SKETCH_30_W, SKETCH_30_H)
    extrude(amount=EXTRUDE_18_DEPTH + EXTRUDE_18_DEPTH_BACK)

    # 草图31 → 切除-拉伸10 (cut)
    with BuildSketch(Plane.ZY.offset(-136.5)):
        with Locations((-5, 6.5)):
            Circle(SKETCH_31_R)
    extrude(amount=-CUT_EXTRUDE_10_DEPTH, mode=Mode.SUBTRACT)


solid = part_3.part
